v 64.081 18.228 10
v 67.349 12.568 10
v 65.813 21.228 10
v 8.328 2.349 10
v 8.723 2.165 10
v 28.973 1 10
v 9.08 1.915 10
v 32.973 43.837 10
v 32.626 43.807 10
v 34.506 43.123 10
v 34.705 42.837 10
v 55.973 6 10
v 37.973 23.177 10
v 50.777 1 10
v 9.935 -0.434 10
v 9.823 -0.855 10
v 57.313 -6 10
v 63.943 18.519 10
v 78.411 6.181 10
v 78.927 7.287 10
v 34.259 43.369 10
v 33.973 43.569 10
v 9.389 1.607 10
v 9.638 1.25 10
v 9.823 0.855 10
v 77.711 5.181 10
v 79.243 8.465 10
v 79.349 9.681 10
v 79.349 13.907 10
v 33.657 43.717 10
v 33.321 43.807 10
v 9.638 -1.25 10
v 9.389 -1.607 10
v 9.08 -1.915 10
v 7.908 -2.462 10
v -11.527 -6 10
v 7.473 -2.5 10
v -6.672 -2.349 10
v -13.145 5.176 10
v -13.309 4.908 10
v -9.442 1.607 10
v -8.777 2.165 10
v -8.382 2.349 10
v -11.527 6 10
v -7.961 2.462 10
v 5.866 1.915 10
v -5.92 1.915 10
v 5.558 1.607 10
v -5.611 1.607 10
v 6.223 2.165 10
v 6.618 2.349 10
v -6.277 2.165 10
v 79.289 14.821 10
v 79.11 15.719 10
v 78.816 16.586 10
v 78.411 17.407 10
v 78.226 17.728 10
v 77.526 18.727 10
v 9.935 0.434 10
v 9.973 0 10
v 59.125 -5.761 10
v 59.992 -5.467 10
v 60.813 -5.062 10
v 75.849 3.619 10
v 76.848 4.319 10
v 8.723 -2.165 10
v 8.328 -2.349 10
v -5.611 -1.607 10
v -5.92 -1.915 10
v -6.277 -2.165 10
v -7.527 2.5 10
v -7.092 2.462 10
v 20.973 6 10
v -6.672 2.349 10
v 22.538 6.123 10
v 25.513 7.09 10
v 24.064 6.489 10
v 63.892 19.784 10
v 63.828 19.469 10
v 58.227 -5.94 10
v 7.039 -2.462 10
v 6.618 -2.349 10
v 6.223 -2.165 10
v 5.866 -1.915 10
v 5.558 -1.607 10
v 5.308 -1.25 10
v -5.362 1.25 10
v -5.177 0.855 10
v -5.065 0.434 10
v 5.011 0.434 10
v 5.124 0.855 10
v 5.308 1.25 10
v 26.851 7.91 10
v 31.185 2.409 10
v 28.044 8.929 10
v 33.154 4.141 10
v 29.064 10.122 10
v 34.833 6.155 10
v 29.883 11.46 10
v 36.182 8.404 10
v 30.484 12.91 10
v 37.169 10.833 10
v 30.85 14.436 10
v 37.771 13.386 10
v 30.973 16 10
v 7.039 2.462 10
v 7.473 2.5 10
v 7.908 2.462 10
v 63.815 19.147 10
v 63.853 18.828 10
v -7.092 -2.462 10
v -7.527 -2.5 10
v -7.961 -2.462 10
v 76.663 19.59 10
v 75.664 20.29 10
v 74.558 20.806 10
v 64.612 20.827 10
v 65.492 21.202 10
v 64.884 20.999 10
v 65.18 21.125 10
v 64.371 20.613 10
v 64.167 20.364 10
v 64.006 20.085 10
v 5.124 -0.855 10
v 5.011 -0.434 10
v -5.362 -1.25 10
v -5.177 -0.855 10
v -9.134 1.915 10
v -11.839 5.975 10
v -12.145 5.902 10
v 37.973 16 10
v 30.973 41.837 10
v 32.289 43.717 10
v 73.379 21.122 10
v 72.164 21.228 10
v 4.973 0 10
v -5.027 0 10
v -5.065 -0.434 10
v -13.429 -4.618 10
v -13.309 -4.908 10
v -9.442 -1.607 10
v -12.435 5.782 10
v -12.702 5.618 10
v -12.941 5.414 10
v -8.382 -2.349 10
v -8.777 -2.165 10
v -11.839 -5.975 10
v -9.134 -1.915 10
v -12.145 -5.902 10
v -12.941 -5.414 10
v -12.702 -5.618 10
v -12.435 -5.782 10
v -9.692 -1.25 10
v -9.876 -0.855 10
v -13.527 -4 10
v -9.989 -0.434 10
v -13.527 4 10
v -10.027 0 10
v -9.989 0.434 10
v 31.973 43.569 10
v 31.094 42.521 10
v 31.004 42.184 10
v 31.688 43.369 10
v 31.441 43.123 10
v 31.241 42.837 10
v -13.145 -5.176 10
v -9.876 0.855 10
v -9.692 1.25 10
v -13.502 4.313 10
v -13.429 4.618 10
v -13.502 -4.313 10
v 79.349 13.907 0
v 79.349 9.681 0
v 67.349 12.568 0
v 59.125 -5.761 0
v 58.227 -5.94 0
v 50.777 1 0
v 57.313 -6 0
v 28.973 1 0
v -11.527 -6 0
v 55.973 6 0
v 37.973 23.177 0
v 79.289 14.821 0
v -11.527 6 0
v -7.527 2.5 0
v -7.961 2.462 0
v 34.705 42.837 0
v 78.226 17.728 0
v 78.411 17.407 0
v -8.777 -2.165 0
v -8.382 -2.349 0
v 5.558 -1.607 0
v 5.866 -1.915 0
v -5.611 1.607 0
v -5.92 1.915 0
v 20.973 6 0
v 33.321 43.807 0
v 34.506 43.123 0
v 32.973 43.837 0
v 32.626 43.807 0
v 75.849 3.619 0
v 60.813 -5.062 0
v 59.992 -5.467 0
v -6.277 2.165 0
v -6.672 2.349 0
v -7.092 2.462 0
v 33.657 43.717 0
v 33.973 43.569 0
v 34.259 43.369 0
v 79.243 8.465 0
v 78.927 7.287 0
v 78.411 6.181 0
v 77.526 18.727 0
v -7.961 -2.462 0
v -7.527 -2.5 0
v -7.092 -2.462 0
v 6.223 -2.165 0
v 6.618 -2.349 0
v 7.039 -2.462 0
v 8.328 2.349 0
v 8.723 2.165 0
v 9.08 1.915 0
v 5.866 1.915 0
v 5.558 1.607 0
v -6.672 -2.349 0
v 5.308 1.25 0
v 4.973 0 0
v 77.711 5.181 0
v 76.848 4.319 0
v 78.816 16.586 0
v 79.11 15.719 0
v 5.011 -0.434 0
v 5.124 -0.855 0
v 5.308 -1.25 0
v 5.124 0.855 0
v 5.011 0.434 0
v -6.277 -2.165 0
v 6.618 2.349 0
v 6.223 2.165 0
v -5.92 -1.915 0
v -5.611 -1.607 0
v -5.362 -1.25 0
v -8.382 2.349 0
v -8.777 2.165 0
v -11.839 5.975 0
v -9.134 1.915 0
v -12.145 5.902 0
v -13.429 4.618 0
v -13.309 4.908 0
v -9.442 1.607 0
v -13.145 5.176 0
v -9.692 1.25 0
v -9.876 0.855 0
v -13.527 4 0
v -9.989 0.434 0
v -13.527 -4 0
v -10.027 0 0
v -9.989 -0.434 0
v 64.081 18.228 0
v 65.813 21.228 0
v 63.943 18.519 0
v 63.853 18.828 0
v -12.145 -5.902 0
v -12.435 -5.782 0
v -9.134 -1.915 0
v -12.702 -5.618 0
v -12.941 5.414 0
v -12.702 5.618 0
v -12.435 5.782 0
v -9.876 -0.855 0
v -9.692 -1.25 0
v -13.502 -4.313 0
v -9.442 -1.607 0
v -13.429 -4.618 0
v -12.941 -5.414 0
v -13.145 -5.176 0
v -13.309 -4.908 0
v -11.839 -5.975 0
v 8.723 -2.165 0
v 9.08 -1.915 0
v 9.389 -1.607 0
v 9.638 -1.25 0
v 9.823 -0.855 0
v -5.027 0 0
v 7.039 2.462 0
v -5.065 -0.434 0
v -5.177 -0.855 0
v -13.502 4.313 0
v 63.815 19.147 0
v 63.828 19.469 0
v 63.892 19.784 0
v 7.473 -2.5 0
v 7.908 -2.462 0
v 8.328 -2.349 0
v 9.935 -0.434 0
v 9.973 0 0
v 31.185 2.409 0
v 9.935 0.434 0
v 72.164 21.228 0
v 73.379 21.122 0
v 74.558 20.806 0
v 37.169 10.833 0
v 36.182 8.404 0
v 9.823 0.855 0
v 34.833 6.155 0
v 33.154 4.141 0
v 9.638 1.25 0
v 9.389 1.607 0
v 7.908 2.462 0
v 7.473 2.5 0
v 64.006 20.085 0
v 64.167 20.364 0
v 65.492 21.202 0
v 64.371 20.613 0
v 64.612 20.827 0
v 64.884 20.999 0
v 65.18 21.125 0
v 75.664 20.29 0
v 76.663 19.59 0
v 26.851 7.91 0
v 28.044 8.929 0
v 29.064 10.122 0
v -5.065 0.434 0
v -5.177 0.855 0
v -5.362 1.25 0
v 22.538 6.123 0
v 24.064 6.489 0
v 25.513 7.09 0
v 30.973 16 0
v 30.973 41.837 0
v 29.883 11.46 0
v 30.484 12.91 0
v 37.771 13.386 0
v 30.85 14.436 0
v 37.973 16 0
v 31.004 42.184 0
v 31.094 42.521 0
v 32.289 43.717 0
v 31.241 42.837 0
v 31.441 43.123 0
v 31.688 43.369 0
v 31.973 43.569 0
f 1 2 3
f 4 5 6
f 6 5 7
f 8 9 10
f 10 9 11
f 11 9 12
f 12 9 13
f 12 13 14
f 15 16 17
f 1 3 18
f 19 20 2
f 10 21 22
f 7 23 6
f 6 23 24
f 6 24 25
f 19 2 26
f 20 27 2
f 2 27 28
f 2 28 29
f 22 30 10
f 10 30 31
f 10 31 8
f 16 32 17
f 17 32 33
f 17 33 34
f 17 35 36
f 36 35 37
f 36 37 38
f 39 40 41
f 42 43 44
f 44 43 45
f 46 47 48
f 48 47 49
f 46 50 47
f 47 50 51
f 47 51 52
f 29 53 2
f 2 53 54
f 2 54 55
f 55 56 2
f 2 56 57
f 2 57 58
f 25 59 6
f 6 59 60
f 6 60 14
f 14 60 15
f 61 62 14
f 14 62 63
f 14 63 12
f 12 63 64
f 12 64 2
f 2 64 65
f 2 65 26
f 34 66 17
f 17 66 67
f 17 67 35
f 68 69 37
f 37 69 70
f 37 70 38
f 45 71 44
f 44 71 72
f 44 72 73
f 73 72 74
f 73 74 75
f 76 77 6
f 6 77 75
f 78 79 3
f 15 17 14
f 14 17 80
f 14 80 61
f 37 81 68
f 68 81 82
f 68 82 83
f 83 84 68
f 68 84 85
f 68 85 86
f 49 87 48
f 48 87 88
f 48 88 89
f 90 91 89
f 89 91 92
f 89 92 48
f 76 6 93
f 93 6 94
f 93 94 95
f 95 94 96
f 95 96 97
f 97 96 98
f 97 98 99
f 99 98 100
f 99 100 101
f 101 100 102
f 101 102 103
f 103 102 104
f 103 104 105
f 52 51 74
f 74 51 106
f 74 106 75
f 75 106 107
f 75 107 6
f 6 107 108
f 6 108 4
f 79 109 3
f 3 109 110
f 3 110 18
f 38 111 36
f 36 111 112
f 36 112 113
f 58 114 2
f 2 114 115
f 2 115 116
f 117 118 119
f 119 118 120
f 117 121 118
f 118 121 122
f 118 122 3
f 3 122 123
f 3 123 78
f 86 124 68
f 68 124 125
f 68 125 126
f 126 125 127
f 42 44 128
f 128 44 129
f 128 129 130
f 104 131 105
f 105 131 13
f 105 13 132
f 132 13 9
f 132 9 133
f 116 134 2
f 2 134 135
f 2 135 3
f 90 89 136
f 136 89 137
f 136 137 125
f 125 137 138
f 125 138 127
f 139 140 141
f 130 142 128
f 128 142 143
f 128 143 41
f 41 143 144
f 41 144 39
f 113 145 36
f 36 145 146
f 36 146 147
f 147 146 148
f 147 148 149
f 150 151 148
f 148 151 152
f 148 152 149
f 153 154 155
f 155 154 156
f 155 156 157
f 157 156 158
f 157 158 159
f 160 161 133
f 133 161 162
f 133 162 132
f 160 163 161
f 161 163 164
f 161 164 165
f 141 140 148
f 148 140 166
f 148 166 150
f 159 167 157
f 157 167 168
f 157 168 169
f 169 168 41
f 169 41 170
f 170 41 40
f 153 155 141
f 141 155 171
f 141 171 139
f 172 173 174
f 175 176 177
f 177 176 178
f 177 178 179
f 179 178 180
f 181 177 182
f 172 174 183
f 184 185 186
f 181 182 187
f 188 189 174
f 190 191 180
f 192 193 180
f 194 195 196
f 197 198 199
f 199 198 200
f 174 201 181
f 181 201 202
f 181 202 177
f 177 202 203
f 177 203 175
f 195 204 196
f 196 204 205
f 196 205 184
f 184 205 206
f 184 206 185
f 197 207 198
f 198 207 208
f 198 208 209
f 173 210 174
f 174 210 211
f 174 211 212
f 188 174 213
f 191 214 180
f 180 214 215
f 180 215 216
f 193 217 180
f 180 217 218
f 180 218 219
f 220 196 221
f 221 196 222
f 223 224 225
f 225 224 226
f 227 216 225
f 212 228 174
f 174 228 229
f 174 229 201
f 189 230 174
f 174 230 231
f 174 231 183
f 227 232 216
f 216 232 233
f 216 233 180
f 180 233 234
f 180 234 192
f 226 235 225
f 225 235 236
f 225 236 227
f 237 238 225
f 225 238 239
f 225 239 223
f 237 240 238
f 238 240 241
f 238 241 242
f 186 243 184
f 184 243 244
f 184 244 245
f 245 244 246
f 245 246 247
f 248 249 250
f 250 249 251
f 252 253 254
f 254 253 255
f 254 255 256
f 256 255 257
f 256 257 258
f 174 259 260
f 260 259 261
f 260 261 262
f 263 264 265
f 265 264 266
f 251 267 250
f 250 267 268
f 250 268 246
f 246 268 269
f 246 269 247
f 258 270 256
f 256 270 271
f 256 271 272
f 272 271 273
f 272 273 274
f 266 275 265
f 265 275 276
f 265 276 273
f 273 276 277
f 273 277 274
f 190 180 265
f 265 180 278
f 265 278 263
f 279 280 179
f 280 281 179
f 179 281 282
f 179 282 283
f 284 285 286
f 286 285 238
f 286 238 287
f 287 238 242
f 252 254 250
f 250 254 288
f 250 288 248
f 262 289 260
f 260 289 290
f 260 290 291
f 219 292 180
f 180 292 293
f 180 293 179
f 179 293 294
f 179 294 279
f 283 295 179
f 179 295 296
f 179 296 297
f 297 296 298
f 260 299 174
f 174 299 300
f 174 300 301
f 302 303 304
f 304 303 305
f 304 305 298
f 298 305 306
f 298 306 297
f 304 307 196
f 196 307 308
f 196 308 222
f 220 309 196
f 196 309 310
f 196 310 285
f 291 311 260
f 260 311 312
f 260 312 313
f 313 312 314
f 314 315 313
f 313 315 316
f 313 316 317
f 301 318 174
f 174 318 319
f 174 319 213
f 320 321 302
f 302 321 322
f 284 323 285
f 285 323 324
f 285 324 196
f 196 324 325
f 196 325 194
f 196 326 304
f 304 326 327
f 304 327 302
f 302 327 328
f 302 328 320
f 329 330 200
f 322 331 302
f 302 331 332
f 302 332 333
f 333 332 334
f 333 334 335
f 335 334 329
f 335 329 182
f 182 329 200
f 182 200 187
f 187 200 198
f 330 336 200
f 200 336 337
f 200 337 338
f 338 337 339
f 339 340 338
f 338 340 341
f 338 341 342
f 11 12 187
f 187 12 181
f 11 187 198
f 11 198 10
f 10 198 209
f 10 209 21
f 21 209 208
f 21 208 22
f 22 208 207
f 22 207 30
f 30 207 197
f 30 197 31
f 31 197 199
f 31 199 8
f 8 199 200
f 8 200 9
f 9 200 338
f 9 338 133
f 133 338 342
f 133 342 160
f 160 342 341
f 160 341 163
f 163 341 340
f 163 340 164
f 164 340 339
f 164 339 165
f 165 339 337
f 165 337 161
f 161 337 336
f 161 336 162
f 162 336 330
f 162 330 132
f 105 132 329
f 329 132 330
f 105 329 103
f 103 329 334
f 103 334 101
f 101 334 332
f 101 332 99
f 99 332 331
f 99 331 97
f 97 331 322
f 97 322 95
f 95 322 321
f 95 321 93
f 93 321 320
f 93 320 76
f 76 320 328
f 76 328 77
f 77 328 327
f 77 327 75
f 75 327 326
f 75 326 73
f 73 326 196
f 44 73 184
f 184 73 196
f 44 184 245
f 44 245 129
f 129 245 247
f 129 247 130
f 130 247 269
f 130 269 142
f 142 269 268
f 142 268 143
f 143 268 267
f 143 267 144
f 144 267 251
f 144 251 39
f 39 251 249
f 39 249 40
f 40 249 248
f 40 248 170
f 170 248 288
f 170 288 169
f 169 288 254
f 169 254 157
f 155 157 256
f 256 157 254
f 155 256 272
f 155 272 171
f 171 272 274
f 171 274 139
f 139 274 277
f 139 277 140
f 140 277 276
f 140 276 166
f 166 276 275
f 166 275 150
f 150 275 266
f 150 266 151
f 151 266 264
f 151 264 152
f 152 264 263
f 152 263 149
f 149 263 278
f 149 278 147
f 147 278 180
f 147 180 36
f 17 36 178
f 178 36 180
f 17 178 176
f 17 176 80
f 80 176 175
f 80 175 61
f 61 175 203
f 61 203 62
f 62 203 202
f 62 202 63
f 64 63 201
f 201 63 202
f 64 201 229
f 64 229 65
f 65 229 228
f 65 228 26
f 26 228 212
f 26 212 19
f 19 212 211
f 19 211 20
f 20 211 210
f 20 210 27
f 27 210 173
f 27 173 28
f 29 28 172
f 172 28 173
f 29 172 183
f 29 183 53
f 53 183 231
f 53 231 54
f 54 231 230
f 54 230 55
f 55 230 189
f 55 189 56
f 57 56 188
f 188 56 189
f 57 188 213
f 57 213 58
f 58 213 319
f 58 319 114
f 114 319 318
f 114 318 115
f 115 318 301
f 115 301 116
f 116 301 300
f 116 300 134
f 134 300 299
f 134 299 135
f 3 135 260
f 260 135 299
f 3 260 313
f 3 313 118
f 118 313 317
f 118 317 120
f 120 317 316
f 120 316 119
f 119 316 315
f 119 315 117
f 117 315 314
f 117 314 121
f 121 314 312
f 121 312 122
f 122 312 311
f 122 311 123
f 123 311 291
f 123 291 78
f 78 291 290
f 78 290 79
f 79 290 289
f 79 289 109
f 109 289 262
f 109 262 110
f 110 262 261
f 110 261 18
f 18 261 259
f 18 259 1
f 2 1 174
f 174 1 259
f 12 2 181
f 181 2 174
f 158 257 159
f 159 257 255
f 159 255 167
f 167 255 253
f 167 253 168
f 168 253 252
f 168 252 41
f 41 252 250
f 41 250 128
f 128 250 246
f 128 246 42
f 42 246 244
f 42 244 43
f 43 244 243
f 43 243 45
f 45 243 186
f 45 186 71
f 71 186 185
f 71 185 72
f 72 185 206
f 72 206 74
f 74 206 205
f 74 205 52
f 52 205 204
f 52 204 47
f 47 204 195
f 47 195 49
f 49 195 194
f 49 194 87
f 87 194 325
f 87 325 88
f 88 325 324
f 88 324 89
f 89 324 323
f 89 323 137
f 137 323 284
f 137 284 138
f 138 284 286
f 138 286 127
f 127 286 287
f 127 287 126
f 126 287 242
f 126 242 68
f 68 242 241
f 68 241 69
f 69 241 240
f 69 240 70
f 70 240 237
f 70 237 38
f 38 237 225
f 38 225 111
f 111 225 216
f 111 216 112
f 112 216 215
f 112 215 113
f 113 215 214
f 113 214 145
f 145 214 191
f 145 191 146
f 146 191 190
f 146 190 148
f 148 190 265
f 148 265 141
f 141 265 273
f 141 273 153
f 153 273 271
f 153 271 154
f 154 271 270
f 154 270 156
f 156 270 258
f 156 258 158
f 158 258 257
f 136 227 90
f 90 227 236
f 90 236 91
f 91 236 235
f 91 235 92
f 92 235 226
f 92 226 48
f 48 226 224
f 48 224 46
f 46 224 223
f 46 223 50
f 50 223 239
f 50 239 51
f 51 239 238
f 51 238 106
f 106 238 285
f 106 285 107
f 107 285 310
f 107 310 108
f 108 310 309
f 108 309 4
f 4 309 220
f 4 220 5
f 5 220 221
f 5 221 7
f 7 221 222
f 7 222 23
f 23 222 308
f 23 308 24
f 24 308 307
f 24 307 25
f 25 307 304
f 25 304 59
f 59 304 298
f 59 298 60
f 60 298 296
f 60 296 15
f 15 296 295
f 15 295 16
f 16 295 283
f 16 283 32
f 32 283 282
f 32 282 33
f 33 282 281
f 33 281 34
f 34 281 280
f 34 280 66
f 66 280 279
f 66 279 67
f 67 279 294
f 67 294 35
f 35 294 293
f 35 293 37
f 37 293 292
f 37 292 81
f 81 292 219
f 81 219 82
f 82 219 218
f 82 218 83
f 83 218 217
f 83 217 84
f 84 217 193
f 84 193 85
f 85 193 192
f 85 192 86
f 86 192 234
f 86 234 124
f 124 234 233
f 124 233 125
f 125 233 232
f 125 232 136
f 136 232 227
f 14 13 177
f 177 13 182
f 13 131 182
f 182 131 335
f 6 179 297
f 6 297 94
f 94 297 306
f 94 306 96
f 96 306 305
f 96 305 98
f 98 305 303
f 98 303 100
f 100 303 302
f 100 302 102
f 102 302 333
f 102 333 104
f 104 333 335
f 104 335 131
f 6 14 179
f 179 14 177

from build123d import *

# Parameters (mm, degrees)
SKETCH1_R           = 2.5
BOSS_EXTRUDE1_DEPTH = 10


with BuildPart() as part:
    # Sketch1 → Boss-Extrude1 (new body)
    with BuildSketch(Plane.XY):
        with BuildLine():
            Line((-11.526582654, 6), (20.973417346, 6))
            ThreePointArc((20.973417346, 6), (28.044485158, 8.928932188), (30.973417346, 16))
            Line((30.973417346, 16), (30.973417346, 41.837168574))
            ThreePointArc((30.973417346, 41.837168574), (32.455779256, 43.769020227), (34.705468153, 42.837168574))
            Line((34.705468153, 42.837168574), (55.973417346, 6))
            Line((55.973417346, 6), (67.348943548, 12.567663115))
            Line((67.348943548, 12.567663115), (64.080994355, 18.227917153))
            ThreePointArc((64.080994355, 18.227917153), (64.080994355, 20.227917153), (65.813045163, 21.227917153))
            Line((65.813045163, 21.227917153), (72.163898124, 21.227917153))
            ThreePointArc((72.163898124, 21.227917153), (75.663898124, 20.290094979), (78.22607595, 17.727917153))
            Line((78.22607595, 17.727917153), (78.411121374, 17.407409077))
            ThreePointArc((78.411121374, 17.407409077), (79.110424332, 15.719142393), (79.348943548, 13.907409077))
            Line((79.348943548, 13.907409077), (79.348943548, 9.680911769))
            ThreePointArc((79.348943548, 9.680911769), (78.411121374, 6.180911769), (75.848943548, 3.618733942))
            Line((75.848943548, 3.618733942), (60.813163308, -5.062177826))
            ThreePointArc((60.813163308, -5.062177826), (59.124896624, -5.761480784), (57.313163308, -6))
            Line((57.313163308, -6), (-11.526582654, -6))
            ThreePointArc((-11.526582654, -6), (-12.940796217, -5.414213562), (-13.526582654, -4))
            Line((-13.526582654, -4), (-13.526582654, 4))
            ThreePointArc((-13.526582654, 4), (-12.940796217, 5.414213562), (-11.526582654, 6))
        make_face()
        with Locations((-7.526582654, 0)):
            Circle(SKETCH1_R, mode=Mode.SUBTRACT)
        with Locations((7.473417346, 0)):
            Circle(SKETCH1_R, mode=Mode.SUBTRACT)
        with BuildLine():
            Line((50.777264923, 1), (28.973417346, 1))
            ThreePointArc((28.973417346, 1), (35.550797083, 7.253572158), (37.973417346, 16))
            Line((37.973417346, 16), (37.973417346, 23.176914536))
            Line((37.973417346, 23.176914536), (50.777264923, 1))
        make_face(mode=Mode.SUBTRACT)
    extrude(amount=BOSS_EXTRUDE1_DEPTH)


solid = part.part
